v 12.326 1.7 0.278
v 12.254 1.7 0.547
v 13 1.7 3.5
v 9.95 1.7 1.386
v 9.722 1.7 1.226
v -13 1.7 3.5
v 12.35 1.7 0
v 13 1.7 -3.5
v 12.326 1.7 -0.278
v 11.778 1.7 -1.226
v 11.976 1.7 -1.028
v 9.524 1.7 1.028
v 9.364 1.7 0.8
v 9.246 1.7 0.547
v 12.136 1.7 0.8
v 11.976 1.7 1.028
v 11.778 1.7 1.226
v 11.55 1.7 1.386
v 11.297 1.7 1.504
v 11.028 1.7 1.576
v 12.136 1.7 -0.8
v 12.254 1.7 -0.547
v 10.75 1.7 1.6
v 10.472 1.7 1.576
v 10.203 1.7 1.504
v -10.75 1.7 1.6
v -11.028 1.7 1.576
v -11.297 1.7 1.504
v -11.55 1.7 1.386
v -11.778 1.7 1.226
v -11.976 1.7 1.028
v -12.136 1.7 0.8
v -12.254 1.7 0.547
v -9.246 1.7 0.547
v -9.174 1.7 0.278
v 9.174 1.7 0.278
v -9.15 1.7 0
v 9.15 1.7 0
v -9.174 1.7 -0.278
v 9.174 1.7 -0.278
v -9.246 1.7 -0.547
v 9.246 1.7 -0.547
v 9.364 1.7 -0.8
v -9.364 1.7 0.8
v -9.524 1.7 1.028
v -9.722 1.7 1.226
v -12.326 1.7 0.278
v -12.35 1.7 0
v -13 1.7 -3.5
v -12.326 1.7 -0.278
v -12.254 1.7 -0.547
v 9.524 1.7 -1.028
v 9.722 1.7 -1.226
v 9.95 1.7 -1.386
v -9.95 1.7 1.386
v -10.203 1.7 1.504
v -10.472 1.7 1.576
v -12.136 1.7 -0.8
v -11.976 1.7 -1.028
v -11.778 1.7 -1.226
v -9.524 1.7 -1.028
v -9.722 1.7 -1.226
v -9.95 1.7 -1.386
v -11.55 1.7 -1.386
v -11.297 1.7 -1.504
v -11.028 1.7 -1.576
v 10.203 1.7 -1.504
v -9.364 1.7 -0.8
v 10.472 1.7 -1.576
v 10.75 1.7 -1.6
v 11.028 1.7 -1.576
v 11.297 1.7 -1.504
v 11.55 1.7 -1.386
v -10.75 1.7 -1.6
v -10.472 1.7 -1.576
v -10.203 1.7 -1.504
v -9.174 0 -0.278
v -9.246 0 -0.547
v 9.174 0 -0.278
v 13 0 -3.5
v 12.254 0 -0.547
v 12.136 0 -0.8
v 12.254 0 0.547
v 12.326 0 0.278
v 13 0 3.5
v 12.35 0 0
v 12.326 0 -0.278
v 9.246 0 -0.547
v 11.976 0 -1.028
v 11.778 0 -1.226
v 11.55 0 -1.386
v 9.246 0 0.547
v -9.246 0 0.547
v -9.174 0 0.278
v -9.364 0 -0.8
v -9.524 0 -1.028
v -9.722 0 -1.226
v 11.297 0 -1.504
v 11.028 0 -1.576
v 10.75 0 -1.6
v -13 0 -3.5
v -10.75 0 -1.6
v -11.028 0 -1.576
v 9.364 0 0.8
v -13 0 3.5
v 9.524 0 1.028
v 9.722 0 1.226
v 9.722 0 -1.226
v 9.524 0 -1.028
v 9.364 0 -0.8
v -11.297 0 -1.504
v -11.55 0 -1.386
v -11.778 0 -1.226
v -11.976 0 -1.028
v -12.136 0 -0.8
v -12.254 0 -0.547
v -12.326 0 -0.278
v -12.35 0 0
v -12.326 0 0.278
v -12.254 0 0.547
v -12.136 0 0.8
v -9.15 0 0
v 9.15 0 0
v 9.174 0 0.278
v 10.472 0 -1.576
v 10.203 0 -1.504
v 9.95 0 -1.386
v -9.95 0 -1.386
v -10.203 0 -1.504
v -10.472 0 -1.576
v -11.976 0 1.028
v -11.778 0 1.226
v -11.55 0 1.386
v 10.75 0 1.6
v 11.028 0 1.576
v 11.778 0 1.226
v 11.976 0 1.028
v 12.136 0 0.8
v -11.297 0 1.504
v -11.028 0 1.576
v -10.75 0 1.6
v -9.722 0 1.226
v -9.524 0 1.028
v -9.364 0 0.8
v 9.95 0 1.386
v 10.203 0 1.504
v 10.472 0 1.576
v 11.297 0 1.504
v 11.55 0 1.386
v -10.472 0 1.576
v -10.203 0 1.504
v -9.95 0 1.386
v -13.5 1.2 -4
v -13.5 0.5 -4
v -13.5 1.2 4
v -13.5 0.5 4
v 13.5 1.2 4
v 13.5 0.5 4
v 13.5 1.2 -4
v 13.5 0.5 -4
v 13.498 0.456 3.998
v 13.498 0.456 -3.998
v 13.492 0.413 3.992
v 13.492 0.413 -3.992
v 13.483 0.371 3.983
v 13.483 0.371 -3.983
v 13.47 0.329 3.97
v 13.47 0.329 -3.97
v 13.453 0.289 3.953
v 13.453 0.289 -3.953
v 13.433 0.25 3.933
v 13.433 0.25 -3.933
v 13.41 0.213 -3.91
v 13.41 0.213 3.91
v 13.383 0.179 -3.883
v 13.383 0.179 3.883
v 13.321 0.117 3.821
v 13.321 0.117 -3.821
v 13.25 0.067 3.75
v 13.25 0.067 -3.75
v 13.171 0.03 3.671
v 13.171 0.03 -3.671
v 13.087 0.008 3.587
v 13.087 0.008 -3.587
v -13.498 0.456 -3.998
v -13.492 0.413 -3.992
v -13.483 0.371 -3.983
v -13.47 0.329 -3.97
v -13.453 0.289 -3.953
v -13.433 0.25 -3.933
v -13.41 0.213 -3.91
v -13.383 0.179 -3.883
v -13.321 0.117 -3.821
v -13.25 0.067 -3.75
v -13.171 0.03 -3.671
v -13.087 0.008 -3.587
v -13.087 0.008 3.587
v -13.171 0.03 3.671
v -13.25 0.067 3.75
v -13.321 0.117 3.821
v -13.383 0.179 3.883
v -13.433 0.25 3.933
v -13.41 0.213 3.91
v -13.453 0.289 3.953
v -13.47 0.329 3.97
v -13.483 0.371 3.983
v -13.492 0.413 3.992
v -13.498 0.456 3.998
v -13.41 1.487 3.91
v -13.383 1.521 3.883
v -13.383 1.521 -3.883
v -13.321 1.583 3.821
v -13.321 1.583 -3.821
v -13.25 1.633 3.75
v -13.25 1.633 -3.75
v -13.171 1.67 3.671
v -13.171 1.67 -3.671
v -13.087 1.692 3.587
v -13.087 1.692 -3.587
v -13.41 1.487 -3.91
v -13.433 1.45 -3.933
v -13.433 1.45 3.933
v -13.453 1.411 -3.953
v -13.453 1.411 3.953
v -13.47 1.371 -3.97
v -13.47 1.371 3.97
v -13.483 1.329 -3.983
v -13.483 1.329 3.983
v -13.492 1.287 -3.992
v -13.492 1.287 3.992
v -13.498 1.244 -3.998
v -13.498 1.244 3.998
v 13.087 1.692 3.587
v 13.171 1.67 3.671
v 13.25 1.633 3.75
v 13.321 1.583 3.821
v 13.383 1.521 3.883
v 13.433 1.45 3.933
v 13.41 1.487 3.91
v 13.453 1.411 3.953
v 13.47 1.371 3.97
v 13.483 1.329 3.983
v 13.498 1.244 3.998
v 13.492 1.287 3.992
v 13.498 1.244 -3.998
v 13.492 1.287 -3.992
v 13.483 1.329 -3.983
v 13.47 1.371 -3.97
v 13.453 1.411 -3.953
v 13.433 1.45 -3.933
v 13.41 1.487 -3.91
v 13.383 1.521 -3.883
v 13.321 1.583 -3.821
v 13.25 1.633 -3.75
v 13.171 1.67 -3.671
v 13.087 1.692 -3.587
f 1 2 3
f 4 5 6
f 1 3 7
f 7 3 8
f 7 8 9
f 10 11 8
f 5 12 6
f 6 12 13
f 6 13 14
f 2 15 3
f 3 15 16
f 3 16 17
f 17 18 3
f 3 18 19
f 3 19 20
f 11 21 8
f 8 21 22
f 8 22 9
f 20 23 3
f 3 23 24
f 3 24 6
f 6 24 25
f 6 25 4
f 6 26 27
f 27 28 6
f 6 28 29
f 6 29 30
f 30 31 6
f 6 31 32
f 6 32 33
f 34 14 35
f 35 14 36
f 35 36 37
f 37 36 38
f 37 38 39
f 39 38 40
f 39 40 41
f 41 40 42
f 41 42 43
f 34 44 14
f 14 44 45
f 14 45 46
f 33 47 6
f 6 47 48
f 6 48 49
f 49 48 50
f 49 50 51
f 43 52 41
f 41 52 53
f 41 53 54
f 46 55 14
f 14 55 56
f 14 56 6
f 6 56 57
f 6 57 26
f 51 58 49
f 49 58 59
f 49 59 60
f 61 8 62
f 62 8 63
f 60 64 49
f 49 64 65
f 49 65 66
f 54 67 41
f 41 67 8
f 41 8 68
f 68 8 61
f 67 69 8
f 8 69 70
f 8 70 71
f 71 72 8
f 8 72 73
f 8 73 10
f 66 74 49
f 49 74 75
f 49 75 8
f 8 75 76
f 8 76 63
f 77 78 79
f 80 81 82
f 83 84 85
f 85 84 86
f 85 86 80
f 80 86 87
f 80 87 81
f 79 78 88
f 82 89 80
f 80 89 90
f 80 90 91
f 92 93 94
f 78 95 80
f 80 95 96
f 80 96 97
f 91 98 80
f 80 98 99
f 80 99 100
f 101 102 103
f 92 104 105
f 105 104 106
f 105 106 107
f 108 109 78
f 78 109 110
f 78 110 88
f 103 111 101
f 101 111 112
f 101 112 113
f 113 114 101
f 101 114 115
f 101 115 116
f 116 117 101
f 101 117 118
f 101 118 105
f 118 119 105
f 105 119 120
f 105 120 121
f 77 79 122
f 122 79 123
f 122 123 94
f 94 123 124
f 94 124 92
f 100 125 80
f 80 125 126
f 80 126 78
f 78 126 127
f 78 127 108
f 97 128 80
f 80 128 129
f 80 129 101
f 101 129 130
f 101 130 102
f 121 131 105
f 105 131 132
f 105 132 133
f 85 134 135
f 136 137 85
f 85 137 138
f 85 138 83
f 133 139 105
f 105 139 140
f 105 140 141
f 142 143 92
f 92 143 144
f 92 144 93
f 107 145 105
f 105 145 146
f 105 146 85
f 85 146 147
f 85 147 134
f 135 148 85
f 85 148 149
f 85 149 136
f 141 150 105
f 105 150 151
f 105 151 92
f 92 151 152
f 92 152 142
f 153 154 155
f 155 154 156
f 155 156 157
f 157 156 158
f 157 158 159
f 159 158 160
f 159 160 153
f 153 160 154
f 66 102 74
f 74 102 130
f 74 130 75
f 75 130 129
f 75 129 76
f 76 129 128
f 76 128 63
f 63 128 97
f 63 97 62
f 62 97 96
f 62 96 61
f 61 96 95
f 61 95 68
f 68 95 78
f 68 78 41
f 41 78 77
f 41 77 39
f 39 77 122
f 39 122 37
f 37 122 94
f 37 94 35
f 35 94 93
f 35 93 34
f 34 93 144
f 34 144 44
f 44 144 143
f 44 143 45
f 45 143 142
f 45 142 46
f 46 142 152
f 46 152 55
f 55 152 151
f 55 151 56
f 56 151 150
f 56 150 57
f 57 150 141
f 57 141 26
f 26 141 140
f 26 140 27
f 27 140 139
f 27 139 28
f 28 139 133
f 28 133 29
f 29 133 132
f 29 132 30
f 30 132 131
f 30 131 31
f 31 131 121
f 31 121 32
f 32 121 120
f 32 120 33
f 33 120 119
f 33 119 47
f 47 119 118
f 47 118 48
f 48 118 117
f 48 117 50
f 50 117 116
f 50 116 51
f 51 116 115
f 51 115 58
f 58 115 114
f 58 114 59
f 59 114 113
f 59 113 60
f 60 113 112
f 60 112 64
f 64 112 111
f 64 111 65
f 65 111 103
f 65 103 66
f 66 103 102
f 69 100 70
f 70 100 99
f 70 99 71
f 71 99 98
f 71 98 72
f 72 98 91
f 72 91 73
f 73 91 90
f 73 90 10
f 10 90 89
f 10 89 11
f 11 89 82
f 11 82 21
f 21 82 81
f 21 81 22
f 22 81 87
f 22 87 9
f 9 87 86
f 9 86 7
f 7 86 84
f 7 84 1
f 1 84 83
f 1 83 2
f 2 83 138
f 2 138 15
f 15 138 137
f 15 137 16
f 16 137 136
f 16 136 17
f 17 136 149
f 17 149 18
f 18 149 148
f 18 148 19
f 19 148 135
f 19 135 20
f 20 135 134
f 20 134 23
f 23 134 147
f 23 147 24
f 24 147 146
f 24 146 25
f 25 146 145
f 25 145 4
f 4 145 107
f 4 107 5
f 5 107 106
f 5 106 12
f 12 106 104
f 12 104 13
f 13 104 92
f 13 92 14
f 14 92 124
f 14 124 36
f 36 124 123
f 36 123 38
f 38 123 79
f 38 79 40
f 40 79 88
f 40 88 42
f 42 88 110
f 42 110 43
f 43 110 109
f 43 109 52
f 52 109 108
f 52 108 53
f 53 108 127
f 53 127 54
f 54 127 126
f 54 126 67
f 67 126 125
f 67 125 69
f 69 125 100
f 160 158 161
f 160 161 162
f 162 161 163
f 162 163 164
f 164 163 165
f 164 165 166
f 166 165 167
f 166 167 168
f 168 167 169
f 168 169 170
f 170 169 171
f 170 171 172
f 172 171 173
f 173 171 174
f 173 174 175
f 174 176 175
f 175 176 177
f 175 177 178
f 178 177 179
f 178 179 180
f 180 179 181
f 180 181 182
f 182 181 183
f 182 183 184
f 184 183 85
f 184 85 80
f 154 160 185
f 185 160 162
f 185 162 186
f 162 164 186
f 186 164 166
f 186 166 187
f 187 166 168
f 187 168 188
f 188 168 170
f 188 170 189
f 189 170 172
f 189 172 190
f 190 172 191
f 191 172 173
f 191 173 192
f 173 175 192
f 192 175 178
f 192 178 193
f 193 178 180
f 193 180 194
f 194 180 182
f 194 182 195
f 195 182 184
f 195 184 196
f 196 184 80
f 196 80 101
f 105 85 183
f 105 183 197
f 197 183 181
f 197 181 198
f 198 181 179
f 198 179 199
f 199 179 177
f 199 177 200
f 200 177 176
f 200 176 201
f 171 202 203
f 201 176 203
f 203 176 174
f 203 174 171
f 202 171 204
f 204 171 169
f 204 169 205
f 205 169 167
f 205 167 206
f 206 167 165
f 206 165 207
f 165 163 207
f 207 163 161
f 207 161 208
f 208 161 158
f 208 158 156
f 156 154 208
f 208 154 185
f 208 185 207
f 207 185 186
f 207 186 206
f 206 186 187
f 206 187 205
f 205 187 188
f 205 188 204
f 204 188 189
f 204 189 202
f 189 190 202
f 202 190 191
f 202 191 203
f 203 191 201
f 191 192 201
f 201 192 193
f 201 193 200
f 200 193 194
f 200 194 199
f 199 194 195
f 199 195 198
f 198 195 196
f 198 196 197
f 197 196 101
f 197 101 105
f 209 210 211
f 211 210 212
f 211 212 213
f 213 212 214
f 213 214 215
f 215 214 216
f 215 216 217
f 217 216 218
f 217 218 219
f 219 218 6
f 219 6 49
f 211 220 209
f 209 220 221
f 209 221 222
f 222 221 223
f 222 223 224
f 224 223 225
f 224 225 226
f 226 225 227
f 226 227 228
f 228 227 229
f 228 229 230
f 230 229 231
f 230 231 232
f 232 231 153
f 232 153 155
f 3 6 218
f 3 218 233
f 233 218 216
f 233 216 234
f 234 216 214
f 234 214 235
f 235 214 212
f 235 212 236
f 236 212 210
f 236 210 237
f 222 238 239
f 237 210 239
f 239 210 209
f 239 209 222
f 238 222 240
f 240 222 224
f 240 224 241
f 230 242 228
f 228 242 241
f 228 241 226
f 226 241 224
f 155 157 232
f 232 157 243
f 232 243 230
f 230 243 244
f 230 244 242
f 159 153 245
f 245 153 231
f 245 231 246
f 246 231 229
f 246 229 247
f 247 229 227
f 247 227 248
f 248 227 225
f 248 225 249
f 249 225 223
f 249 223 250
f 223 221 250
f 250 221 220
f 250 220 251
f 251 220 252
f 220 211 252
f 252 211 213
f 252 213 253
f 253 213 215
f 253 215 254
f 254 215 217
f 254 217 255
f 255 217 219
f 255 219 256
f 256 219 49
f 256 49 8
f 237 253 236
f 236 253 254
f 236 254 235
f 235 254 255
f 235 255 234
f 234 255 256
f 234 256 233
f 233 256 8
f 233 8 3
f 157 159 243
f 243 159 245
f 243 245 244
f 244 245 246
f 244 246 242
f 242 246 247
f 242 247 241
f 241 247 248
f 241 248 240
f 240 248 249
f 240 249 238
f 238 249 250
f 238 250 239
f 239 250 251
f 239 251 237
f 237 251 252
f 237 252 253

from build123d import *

# Parameters (mm, degrees)
SKETCH1_W           = 27
SKETCH1_H           = 8
SKETCH1_R           = 1.6
BOSS_EXTRUDE1_DEPTH = 1.7
FILLET1_R           = 0.5
FILLET2_R           = 0.5


with BuildPart() as part:
    # Sketch1 → Boss-Extrude1 (new body)
    with BuildSketch(Plane(origin=(0, 0, 0), x_dir=(1, 0, 0), z_dir=(0, 1, 0))):
        Rectangle(SKETCH1_W, SKETCH1_H)
        with Locations((-10.75, 0)):
            Circle(SKETCH1_R, mode=Mode.SUBTRACT)
        with Locations((10.75, 0)):
            Circle(SKETCH1_R, mode=Mode.SUBTRACT)
    extrude(amount=BOSS_EXTRUDE1_DEPTH)

    # Fillet1
    fillet1_edges = [part.edges().sort_by_distance(p)[0] for p in [
        (0, 0, -4),
        (13.5, 0, 0),
        (0, 0, 4),
        (-13.5, 0, 0),
    ]]
    fillet(fillet1_edges, radius=FILLET1_R)

    # Fillet2
    fillet2_edges = [part.edges().sort_by_distance(p)[0] for p in [
        (13.5, 1.7, 0),
        (0, 1.7, -4),
        (-13.5, 1.7, 0),
        (0, 1.7, 4),
    ]]
    fillet(fillet2_edges, radius=FILLET2_R)


solid = part.part
